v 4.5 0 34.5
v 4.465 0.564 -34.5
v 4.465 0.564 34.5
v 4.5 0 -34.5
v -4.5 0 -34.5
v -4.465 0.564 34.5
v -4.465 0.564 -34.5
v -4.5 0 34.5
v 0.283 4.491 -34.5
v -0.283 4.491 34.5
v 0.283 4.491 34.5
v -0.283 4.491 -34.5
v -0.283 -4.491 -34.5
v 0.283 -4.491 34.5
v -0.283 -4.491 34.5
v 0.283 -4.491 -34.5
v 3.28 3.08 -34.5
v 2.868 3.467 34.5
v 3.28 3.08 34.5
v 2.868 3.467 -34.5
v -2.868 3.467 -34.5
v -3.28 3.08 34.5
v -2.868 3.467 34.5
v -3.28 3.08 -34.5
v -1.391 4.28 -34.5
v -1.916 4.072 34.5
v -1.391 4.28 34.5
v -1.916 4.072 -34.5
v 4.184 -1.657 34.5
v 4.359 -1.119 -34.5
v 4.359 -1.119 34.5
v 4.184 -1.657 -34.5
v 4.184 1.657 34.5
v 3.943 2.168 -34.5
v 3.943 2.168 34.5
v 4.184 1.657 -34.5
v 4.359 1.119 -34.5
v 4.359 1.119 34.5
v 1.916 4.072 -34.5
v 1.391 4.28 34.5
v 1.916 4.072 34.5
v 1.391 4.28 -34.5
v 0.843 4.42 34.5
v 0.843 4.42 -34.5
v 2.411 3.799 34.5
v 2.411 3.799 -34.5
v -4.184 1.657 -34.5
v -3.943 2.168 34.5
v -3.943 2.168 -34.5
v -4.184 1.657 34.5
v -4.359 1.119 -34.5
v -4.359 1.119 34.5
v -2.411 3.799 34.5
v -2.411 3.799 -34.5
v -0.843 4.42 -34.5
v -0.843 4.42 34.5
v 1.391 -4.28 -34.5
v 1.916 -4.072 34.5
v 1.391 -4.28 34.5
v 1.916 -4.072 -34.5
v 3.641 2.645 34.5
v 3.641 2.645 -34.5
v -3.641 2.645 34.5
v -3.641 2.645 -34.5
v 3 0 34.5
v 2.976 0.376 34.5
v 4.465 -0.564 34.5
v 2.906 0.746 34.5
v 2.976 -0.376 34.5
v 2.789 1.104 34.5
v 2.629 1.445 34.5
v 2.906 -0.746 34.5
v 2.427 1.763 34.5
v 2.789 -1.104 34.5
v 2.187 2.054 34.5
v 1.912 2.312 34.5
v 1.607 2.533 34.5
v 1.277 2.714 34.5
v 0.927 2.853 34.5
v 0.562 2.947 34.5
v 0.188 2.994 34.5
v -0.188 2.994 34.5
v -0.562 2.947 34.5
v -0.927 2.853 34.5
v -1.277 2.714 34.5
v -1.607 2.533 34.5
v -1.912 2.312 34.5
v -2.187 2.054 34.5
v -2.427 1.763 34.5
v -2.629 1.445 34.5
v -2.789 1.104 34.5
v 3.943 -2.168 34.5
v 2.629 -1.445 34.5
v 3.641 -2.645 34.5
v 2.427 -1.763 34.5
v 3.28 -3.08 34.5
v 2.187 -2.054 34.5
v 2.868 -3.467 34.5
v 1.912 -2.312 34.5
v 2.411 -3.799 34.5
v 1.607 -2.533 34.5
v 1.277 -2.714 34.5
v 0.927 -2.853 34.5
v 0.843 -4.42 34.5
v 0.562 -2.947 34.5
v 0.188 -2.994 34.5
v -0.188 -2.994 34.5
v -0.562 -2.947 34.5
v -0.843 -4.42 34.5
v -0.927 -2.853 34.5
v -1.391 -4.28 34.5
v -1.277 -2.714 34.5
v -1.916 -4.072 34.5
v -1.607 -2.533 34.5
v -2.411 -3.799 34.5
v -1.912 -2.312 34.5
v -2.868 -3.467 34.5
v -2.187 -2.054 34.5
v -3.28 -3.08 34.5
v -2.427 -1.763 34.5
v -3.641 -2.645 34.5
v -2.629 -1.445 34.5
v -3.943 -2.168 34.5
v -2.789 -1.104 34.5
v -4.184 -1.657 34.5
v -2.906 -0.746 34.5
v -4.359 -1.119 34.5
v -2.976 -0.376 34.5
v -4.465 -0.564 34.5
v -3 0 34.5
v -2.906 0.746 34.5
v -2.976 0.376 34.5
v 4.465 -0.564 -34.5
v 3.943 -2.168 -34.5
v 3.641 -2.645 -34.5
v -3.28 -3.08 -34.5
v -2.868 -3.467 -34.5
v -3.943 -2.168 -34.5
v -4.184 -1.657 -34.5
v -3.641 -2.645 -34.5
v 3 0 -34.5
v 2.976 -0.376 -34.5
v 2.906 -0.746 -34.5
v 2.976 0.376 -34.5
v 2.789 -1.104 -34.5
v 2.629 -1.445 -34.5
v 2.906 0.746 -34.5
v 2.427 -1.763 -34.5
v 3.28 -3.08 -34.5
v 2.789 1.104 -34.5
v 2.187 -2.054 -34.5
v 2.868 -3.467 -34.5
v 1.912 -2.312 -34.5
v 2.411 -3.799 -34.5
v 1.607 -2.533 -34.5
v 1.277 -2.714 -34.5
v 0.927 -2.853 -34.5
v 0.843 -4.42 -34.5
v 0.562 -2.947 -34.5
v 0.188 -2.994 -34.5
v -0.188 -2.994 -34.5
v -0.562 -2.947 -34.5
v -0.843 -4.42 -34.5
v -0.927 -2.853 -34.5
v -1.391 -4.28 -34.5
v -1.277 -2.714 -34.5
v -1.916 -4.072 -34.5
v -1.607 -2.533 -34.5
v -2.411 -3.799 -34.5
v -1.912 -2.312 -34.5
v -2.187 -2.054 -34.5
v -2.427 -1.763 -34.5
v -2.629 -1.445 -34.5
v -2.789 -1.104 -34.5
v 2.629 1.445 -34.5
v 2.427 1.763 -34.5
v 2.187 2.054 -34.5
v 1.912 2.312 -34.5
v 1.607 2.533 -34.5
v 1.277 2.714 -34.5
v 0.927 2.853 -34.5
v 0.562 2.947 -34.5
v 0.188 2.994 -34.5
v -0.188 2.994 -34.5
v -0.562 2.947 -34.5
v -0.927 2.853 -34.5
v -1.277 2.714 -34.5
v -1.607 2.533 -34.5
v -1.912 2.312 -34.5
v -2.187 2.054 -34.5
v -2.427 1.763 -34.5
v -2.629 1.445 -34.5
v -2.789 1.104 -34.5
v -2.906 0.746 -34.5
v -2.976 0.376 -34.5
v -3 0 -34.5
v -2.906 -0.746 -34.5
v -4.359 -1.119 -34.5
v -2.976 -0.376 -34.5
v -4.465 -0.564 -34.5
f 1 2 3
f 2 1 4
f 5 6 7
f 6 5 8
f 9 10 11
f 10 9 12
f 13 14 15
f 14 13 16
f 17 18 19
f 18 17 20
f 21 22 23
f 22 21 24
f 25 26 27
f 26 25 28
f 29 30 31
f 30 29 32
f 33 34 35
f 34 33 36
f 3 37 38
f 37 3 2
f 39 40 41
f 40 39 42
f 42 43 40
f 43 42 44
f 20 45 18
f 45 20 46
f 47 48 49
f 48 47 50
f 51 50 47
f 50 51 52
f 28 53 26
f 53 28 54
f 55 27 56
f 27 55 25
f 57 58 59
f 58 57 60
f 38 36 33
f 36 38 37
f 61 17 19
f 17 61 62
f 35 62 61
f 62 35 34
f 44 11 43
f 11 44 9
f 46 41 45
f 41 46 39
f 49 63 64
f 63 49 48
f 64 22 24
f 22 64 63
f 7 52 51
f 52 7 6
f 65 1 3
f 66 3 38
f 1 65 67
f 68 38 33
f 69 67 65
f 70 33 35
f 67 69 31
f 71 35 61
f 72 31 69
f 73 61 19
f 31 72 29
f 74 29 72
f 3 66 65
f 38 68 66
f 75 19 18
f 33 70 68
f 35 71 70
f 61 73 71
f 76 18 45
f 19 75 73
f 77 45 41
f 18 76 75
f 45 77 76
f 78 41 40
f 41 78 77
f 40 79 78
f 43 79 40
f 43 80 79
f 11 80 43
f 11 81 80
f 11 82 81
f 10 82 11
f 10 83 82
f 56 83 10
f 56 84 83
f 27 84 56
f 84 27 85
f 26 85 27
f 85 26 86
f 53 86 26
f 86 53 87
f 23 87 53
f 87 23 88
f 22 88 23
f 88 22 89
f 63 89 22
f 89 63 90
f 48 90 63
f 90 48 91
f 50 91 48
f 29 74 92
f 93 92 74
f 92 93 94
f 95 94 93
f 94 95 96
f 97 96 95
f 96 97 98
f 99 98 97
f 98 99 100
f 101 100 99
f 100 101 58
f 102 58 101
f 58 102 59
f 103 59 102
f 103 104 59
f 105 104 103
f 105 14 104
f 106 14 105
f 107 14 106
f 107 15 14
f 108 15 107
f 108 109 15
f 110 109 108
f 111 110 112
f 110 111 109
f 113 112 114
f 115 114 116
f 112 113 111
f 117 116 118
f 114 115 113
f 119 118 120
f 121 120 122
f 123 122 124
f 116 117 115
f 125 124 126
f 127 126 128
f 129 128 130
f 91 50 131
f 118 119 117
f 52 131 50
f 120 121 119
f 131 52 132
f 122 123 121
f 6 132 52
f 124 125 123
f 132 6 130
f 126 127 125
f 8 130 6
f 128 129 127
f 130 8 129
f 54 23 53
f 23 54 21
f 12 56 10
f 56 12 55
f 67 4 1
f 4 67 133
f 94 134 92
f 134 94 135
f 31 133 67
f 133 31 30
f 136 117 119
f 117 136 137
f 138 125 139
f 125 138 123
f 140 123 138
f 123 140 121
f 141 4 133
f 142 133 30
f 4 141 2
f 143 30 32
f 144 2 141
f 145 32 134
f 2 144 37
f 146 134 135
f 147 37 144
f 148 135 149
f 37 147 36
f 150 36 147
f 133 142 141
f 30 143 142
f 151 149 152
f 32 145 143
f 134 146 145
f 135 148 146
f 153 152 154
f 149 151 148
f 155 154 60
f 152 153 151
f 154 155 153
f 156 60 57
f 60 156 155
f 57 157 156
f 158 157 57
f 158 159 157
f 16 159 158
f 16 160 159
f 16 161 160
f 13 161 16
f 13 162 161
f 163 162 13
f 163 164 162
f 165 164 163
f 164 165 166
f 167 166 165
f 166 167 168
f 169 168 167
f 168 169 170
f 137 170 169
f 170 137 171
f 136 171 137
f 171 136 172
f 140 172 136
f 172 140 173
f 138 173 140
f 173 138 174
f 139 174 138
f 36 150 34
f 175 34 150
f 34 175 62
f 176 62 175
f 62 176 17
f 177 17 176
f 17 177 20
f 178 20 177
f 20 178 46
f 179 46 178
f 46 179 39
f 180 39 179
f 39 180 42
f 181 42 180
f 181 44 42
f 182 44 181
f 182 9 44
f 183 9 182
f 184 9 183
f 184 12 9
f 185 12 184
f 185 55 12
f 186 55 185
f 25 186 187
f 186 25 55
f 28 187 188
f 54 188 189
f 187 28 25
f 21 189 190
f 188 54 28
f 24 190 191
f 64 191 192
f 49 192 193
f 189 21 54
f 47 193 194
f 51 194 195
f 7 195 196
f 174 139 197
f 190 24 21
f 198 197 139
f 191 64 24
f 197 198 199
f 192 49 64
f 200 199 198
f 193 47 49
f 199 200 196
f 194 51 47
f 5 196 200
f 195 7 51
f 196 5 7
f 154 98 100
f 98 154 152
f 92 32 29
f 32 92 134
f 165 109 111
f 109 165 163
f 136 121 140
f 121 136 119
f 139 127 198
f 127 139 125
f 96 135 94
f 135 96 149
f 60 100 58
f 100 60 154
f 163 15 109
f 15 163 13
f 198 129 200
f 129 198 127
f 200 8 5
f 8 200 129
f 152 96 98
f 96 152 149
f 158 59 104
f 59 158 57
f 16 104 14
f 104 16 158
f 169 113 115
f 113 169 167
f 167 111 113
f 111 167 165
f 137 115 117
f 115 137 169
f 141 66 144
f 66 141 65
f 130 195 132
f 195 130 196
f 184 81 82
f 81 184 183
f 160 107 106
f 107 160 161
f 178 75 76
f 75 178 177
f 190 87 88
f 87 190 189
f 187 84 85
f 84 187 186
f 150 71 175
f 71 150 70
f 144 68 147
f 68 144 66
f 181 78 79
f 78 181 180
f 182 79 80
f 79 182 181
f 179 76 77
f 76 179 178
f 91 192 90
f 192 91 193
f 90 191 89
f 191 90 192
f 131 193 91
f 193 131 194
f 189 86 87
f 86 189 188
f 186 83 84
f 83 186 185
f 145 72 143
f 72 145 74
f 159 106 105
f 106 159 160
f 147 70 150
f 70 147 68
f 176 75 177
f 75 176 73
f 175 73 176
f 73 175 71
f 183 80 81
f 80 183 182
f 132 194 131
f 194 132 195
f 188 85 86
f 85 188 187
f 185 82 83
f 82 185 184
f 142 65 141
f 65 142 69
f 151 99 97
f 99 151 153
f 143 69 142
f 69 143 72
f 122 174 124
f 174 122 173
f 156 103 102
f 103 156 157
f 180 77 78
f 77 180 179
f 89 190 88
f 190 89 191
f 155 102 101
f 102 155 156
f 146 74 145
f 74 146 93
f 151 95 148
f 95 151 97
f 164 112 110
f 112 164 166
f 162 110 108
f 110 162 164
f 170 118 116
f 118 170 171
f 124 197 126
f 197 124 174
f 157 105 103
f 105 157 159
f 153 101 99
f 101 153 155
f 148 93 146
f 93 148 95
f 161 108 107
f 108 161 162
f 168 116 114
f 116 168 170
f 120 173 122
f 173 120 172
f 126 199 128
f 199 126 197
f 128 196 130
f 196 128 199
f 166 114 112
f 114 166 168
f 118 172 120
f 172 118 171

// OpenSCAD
$fn = 50;


difference() {
	union() {
		translate(v = [0, 0, -34.5000000000]) {
			cylinder(h = 69, r = 4.5000000000);
		}
	}
	union() {
		translate(v = [0, 0, -100.0000000000]) {
			cylinder(h = 200, r = 3.0000000000);
		}
	}
}
